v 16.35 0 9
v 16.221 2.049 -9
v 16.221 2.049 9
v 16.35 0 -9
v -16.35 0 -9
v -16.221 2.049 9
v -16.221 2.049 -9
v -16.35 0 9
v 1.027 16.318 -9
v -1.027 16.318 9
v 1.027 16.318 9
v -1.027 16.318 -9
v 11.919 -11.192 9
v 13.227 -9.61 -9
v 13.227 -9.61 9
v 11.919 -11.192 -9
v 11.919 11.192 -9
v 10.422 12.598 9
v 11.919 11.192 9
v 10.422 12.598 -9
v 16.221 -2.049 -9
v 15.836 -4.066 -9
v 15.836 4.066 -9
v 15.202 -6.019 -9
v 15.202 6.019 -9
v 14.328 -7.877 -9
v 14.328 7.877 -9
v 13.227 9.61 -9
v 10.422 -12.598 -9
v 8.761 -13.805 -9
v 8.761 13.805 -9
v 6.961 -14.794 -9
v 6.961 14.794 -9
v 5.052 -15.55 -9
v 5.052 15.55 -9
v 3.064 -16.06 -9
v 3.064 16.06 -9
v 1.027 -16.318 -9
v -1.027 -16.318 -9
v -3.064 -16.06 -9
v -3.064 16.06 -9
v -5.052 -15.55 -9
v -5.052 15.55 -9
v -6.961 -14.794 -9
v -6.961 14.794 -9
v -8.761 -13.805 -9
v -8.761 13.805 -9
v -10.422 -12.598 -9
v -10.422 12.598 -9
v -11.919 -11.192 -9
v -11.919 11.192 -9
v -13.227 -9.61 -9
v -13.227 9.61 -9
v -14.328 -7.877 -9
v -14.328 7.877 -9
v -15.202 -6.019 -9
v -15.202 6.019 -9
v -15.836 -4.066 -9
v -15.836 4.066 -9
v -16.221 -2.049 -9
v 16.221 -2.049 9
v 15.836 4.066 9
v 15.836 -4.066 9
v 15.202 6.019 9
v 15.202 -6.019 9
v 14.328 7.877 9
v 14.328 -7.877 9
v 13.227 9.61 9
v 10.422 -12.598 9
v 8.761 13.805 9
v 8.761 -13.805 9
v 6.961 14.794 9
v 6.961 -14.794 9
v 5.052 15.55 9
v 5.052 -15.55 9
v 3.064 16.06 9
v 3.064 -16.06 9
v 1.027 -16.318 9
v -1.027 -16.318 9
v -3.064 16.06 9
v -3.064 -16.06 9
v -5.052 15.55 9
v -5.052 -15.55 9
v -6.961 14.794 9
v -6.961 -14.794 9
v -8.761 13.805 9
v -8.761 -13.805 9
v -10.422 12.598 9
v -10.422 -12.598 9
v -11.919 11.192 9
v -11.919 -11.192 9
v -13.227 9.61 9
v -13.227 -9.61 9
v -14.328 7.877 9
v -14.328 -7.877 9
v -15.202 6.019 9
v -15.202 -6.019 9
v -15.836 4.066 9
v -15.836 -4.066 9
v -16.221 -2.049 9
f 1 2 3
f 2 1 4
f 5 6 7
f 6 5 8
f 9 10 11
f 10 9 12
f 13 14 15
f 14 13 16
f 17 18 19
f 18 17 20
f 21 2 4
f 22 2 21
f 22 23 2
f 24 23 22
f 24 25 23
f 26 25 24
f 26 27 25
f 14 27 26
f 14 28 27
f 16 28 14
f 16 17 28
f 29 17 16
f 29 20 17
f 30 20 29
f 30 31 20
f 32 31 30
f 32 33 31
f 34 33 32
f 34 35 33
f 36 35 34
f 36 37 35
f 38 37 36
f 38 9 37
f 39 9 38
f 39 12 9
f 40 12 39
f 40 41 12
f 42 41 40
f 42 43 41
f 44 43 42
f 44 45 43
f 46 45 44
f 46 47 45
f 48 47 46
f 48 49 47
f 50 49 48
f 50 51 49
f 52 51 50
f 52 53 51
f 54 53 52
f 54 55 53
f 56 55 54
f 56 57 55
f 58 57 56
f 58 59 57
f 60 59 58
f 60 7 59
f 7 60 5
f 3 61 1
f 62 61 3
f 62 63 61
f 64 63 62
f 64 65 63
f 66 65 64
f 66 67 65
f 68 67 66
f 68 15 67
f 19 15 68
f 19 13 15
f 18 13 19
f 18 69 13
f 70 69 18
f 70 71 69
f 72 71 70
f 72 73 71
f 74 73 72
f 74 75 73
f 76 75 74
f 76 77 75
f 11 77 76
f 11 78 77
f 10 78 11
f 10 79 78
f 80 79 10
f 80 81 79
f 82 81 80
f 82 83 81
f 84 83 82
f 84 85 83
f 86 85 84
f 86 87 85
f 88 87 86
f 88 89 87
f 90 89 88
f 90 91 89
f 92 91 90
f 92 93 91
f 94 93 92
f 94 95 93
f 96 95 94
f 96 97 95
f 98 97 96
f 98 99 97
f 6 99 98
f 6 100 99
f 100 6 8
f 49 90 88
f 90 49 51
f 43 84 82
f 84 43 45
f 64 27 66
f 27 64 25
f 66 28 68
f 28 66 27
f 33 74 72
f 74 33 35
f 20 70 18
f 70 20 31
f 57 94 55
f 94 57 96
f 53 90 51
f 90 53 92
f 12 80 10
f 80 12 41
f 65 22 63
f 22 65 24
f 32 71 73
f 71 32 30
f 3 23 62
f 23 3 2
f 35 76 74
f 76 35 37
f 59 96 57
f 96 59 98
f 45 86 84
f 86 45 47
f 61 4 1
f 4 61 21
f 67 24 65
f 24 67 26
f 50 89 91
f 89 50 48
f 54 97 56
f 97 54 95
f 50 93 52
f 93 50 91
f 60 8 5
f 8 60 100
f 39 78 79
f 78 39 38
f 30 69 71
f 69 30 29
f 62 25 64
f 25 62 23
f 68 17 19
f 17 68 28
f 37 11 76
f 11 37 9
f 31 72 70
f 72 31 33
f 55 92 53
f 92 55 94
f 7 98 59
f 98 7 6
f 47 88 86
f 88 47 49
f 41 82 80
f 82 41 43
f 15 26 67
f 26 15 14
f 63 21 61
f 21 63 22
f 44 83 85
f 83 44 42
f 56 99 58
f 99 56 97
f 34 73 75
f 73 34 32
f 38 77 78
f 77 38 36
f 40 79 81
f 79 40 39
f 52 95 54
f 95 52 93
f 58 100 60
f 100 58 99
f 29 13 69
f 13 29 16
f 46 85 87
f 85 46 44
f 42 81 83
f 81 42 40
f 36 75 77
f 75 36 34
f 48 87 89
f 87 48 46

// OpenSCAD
$fn = 50;


difference() {
	union() {
		translate(v = [0, 0, -9.0000000000]) {
			cylinder(h = 18, r = 16.3500000000);
		}
	}
	union() {
		translate(v = [0, 0, -100.0000000000]) {
			cylinder(h = 200, r = 0);
		}
	}
}
